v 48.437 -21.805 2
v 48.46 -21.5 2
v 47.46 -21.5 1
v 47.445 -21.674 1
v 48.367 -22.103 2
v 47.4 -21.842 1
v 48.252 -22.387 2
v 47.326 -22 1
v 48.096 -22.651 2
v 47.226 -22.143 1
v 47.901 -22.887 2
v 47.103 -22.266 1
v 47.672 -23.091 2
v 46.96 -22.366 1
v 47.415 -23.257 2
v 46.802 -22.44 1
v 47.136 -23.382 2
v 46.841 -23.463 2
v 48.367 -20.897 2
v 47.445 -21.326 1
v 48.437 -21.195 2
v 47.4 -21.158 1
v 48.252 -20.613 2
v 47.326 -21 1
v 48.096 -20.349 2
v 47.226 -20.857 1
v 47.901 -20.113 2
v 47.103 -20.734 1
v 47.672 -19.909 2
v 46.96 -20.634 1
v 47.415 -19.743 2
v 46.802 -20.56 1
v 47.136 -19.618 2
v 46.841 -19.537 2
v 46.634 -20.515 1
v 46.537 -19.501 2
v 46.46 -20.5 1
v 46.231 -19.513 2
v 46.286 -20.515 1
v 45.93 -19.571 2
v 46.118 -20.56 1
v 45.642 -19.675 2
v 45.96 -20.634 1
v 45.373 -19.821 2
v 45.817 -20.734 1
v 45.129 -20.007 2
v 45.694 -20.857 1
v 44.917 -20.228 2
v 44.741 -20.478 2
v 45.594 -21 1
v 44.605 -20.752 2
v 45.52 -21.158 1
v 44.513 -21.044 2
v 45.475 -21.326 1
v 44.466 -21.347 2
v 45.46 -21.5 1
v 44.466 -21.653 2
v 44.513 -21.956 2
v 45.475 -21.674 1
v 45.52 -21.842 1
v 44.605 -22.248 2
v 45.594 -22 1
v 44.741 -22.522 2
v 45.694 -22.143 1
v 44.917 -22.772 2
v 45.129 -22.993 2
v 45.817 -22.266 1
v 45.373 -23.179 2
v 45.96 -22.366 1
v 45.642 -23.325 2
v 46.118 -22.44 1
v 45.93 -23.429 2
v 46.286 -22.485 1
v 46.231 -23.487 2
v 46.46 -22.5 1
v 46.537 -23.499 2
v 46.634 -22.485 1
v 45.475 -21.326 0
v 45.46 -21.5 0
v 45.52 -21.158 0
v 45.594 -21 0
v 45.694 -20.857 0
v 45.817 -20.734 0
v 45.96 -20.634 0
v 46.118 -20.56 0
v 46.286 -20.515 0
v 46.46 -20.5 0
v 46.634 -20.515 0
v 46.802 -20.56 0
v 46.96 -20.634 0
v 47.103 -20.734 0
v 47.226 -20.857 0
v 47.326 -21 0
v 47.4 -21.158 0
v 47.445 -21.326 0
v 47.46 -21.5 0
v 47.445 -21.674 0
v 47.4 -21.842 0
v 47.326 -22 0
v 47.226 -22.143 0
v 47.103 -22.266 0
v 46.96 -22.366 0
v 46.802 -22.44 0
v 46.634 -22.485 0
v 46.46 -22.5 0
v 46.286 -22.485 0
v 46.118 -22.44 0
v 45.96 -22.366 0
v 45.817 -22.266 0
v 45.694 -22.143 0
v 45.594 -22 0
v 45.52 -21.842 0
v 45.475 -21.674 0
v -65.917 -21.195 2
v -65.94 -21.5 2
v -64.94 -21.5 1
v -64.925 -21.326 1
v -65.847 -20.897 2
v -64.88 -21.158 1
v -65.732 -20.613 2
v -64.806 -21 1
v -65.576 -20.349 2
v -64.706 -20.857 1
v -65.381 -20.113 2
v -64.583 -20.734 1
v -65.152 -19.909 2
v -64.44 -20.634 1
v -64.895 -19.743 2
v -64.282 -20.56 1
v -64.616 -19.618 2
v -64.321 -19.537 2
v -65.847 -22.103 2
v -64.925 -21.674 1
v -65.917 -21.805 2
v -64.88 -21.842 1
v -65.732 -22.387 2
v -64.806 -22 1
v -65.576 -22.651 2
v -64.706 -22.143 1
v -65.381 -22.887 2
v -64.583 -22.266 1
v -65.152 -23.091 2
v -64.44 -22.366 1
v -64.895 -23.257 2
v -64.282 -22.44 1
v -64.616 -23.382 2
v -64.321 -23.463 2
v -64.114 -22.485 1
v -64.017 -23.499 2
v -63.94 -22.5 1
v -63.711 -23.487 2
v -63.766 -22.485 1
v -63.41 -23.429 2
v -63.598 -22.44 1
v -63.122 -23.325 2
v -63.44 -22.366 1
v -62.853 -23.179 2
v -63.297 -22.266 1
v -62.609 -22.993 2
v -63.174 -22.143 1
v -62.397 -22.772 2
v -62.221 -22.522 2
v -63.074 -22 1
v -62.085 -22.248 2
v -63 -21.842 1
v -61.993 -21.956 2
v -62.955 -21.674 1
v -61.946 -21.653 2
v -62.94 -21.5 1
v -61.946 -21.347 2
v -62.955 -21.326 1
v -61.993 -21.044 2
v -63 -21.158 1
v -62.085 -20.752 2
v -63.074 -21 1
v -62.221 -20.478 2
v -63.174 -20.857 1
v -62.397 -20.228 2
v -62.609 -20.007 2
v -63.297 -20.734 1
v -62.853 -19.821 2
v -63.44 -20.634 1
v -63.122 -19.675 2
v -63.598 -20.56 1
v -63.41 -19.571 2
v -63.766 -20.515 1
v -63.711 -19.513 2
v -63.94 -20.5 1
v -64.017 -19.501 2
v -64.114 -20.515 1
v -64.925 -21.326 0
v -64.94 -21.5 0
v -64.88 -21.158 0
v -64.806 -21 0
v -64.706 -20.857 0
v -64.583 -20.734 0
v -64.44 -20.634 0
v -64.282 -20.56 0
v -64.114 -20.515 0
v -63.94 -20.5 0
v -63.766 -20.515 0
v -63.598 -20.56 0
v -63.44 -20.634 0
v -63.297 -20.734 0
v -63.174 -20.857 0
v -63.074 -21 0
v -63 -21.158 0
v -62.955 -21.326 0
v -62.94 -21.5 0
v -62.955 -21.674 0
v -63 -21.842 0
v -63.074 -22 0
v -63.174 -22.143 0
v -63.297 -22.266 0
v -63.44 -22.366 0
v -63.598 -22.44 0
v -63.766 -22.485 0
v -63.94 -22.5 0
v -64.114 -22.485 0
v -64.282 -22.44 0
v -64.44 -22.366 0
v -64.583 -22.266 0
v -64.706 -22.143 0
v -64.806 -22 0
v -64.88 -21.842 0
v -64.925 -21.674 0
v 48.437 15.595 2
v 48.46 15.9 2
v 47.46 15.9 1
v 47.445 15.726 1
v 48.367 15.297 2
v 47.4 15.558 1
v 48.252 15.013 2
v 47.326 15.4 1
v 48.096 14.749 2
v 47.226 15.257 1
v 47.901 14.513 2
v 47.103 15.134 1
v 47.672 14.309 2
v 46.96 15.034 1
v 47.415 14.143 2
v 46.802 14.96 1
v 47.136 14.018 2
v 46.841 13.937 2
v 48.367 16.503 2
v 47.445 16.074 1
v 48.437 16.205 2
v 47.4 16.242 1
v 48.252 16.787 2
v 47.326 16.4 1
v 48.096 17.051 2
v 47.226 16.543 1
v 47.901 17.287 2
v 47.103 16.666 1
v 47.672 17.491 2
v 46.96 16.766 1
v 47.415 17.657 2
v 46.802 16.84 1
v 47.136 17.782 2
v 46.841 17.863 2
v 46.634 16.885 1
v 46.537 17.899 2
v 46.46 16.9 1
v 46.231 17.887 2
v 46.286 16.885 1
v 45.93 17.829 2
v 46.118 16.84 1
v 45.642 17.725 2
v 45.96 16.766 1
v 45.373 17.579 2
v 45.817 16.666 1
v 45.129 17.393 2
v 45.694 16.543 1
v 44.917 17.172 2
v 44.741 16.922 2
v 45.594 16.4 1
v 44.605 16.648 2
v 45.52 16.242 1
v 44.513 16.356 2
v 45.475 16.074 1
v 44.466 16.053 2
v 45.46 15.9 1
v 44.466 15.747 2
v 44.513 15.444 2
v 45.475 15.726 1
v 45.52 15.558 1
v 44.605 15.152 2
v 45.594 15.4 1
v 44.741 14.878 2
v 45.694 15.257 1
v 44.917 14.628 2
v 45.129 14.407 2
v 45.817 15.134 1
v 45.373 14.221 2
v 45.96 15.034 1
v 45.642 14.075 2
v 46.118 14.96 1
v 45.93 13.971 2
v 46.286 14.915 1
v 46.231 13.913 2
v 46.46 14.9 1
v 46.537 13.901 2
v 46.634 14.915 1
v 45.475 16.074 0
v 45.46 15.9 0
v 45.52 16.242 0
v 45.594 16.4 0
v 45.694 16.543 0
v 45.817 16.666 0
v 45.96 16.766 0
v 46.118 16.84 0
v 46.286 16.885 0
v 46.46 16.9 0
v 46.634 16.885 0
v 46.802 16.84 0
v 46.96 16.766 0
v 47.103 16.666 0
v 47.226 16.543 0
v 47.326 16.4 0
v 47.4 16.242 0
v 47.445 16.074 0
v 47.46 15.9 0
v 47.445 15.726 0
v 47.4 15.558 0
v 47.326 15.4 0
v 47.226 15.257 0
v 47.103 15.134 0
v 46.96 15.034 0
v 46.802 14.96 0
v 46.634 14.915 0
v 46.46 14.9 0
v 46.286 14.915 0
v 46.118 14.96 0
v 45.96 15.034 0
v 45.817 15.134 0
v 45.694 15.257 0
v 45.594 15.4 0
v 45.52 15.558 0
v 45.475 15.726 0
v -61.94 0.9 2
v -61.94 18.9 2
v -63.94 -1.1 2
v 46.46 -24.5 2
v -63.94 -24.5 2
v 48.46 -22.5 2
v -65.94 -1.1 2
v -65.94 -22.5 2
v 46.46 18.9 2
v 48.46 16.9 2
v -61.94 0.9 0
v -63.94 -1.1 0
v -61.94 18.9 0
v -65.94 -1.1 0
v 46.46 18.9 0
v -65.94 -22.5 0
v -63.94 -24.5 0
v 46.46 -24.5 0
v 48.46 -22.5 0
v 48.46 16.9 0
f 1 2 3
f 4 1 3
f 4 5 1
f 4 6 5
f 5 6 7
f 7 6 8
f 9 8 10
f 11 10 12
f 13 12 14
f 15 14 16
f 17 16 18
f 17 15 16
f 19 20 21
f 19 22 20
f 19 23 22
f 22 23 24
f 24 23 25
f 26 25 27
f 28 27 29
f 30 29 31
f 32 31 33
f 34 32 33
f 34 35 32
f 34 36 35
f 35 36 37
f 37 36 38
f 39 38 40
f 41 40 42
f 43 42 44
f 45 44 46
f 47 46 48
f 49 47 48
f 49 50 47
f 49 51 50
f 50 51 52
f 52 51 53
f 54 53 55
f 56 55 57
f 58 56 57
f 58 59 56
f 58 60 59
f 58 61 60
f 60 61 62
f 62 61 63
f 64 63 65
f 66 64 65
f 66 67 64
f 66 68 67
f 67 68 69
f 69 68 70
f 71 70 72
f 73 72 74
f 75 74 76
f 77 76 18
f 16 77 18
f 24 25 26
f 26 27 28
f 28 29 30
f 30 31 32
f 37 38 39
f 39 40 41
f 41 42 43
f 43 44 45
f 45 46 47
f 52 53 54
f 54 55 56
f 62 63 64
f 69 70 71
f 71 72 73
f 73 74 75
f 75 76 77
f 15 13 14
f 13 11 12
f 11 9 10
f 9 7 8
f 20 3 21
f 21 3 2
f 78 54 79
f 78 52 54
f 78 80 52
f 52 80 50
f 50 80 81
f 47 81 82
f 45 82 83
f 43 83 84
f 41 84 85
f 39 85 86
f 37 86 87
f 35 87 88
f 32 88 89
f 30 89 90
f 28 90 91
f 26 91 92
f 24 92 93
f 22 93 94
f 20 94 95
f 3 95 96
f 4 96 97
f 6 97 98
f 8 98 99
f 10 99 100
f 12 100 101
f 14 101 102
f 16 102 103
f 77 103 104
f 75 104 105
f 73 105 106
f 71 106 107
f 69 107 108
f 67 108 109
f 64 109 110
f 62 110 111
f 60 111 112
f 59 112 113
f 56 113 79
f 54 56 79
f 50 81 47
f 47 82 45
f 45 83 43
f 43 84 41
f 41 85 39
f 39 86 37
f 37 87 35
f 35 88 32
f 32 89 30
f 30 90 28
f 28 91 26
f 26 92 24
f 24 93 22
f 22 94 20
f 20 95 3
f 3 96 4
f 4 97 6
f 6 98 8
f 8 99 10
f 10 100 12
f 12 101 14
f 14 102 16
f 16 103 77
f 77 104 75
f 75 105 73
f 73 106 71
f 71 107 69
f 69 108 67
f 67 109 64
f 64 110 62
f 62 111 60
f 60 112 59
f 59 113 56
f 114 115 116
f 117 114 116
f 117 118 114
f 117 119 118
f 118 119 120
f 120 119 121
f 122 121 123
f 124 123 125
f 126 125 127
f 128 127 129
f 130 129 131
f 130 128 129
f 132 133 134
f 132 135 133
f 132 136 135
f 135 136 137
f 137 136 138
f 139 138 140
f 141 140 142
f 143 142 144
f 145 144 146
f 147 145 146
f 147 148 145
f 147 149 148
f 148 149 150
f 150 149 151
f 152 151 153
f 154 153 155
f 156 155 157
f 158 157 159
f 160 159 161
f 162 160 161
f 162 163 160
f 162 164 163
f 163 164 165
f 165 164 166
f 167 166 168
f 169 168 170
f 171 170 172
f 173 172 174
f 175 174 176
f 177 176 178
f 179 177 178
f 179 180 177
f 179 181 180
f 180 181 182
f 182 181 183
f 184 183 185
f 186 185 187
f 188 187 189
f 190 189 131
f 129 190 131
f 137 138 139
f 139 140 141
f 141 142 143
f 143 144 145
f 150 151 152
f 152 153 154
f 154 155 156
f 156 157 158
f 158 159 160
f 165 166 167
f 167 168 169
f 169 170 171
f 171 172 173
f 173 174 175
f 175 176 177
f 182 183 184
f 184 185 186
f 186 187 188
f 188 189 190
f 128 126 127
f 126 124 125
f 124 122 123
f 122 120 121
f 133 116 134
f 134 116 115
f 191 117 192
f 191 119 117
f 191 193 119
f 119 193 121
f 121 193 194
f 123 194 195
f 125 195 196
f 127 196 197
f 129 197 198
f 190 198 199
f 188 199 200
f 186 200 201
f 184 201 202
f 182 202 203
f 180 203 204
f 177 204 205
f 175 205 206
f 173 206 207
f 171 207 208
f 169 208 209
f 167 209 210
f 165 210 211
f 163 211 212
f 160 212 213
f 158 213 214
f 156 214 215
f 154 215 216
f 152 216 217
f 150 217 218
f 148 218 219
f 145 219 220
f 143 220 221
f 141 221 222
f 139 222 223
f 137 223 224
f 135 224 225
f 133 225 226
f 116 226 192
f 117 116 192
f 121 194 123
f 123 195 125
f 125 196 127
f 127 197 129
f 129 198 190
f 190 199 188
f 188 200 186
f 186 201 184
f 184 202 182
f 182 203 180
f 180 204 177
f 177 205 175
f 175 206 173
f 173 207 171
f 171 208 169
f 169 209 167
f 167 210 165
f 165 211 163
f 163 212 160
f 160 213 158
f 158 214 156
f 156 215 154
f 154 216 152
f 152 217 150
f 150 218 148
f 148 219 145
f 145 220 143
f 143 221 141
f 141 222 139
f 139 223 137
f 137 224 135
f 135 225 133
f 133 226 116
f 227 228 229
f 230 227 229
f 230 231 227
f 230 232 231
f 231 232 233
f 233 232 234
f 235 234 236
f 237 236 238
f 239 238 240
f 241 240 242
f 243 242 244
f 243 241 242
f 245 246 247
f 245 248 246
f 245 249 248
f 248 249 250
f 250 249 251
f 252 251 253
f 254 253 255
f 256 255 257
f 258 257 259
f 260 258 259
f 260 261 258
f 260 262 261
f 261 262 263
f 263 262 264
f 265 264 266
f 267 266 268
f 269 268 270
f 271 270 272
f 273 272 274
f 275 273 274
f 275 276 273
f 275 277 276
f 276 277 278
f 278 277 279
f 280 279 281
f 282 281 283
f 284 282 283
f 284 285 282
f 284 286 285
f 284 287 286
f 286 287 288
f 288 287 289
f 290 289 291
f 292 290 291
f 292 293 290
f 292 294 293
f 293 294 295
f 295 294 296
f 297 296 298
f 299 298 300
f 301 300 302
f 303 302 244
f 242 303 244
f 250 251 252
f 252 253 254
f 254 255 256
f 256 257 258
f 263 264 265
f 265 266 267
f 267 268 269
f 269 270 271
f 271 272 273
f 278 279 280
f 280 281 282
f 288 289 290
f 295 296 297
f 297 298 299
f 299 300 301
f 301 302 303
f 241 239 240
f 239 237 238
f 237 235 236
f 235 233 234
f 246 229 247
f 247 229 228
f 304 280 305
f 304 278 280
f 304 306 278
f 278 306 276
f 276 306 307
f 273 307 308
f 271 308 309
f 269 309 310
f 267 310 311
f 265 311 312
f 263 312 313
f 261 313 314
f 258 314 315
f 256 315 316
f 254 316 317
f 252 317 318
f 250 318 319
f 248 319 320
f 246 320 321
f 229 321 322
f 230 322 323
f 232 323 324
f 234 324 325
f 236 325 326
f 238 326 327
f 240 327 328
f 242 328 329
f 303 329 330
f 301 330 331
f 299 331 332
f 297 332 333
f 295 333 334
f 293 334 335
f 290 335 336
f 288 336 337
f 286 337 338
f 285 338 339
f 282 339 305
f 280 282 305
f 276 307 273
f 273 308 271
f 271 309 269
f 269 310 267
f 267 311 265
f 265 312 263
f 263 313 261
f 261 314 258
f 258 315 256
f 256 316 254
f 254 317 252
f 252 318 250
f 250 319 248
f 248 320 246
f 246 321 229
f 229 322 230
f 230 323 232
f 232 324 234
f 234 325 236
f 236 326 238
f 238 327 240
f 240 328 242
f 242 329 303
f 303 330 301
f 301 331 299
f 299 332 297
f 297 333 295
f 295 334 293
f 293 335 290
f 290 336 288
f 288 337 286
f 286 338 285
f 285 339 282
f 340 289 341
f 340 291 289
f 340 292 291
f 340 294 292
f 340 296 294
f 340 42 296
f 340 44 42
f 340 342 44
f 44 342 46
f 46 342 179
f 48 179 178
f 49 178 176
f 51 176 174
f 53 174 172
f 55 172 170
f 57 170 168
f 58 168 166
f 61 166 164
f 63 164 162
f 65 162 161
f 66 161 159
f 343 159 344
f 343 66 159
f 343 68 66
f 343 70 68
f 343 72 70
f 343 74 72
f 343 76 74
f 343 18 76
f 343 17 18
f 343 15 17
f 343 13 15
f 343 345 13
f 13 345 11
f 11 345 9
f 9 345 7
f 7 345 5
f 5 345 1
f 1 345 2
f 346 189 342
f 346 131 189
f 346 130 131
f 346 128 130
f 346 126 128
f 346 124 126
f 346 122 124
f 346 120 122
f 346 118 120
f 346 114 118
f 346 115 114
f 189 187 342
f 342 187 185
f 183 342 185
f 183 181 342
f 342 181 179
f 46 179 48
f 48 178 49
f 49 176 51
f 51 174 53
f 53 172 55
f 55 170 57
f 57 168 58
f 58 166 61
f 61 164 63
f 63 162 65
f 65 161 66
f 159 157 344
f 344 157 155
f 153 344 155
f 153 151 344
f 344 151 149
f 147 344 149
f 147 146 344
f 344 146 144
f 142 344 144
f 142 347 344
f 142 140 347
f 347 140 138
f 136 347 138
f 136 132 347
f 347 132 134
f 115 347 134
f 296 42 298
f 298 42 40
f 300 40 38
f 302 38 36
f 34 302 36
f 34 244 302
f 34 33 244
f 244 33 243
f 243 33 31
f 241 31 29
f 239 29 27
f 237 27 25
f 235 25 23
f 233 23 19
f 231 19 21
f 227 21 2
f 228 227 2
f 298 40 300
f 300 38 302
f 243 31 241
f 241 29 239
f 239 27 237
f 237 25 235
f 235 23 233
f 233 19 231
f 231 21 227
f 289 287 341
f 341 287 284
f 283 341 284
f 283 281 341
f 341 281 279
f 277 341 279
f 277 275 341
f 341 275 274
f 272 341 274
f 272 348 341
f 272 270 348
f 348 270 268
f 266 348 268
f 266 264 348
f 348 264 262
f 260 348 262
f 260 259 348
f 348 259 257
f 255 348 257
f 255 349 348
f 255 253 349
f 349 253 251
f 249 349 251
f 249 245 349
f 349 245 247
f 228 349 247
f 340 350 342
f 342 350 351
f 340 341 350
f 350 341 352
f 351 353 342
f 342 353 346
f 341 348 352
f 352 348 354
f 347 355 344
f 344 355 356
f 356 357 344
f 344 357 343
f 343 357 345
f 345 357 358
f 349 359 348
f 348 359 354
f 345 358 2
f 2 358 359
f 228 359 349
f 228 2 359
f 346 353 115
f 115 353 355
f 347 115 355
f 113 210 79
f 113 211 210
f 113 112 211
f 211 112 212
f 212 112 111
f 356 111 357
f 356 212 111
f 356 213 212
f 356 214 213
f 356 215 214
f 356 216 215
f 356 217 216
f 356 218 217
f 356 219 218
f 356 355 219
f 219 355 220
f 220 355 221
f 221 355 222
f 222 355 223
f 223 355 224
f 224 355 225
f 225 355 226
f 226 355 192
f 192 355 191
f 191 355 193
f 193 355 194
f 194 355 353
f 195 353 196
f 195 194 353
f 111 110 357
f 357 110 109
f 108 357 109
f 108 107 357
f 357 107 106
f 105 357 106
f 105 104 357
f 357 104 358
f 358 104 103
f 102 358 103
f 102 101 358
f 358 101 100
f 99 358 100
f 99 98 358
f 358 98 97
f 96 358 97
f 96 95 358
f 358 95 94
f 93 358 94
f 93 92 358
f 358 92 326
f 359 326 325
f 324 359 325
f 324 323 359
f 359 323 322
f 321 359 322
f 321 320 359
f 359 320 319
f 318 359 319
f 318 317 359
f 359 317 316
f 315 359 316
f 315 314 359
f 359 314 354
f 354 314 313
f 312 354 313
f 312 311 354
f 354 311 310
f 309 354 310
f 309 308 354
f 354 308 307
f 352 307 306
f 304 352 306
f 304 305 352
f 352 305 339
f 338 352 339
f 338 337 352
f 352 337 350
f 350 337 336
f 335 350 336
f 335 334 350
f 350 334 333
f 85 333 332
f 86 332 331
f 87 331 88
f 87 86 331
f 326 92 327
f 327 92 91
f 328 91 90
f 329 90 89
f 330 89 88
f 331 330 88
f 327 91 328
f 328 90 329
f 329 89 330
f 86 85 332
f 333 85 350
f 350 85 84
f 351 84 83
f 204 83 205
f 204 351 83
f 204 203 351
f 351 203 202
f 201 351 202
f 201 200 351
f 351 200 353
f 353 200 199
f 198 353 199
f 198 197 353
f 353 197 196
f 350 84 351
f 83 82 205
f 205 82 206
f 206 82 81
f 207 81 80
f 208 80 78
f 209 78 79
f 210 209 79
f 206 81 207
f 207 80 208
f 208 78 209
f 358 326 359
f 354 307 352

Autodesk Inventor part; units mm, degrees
ref_plane "YZ Plane" through (0, 0, 0) normal (1, 0, 0) x (0, 1, 0)
ref_plane "XZ Plane" through (0, 0, 0) normal (0, 1, 0) x (-1, 0, 0)
ref_plane "XY Plane" through (0, 0, 0) normal (0, 0, 1) x (1, 0, 0)
sketch "Sketch1" plane through (0, 0, 0) normal (1, 0, 0) x (0, 1, 0)
  point P0 (0, 0)
sketch "Sketch2" plane through (0, 0, 0) normal (0, 0, 1) x (1, 0, 0)
  line L0 (-65.94, 18.9) -> (48.46, 18.9)
  line L1 (48.46, 18.9) -> (48.46, -24.5)
  line L2 (48.46, -24.5) -> (-65.94, -24.5)
  line L3 (-65.94, -24.5) -> (-65.94, 18.9)
  point P0 (0, 0)
  dimension "d0" = 43.4
  dimension "d1" = 114.4
extrude "Extrusion1" add sketch "Sketch2" along normal blind 2
chamfer "Chamfer1" distance 2 angle 45 3 edges at (48.46, 18.9, 1) (48.46, -24.5, 1) (-65.94, -24.5, 1)
sketch "Sketch3" plane through (0, 0, 2) normal (0, 0, 1) x (1, 0, 0)
  line L0 (-65.94, 18.9) -> (-61.94, 18.9)
  line L1 (-61.94, 18.9) -> (-61.94, -1.1)
  line L2 (-61.94, -1.1) -> (-65.94, -1.1)
  line L3 (-65.94, -1.1) -> (-65.94, 18.9)
  point P0 (0, 0)
  dimension "d7" = 4
  dimension "d8" = 20
extrude "Extrusion2" cut sketch "Sketch3" against normal blind 2
chamfer "Chamfer2" distance 2 angle 45 1 edges at (-61.94, -1.1, 1)
sketch "Sketch4" plane through (0, 0, 2) normal (0, 0, 1) x (1, 0, 0)
  line L0 (-61.94, 18.9) -> (46.46, 18.9) projected
  line L1 (-63.94, -24.5) -> (46.46, -24.5) projected
  line L2 (48.46, -22.5) -> (48.46, 16.9) projected
  line L3 (-65.94, -22.5) -> (-65.94, -1.1) projected
  point P0 (0, 0)
  point P1 (-63.94, -21.5)
  point P2 (46.46, -21.5)
  point P3 (46.46, 15.9)
  dimension "d14" = 3
  dimension "d15" = 3
  dimension "d16" = 2
  dimension "d17" = 2
  dimension "d18" = 2
  dimension "d19" = 3
hole "Hole1" at (-63.94, -21.5, 2) at (46.46, -21.5, 2) at (46.46, 15.9, 2) direction (0, 0, -1) diameter 2 depth 8 tip angle 118 countersink diameter 4 countersink angle 90
properties part number "main body cover"
